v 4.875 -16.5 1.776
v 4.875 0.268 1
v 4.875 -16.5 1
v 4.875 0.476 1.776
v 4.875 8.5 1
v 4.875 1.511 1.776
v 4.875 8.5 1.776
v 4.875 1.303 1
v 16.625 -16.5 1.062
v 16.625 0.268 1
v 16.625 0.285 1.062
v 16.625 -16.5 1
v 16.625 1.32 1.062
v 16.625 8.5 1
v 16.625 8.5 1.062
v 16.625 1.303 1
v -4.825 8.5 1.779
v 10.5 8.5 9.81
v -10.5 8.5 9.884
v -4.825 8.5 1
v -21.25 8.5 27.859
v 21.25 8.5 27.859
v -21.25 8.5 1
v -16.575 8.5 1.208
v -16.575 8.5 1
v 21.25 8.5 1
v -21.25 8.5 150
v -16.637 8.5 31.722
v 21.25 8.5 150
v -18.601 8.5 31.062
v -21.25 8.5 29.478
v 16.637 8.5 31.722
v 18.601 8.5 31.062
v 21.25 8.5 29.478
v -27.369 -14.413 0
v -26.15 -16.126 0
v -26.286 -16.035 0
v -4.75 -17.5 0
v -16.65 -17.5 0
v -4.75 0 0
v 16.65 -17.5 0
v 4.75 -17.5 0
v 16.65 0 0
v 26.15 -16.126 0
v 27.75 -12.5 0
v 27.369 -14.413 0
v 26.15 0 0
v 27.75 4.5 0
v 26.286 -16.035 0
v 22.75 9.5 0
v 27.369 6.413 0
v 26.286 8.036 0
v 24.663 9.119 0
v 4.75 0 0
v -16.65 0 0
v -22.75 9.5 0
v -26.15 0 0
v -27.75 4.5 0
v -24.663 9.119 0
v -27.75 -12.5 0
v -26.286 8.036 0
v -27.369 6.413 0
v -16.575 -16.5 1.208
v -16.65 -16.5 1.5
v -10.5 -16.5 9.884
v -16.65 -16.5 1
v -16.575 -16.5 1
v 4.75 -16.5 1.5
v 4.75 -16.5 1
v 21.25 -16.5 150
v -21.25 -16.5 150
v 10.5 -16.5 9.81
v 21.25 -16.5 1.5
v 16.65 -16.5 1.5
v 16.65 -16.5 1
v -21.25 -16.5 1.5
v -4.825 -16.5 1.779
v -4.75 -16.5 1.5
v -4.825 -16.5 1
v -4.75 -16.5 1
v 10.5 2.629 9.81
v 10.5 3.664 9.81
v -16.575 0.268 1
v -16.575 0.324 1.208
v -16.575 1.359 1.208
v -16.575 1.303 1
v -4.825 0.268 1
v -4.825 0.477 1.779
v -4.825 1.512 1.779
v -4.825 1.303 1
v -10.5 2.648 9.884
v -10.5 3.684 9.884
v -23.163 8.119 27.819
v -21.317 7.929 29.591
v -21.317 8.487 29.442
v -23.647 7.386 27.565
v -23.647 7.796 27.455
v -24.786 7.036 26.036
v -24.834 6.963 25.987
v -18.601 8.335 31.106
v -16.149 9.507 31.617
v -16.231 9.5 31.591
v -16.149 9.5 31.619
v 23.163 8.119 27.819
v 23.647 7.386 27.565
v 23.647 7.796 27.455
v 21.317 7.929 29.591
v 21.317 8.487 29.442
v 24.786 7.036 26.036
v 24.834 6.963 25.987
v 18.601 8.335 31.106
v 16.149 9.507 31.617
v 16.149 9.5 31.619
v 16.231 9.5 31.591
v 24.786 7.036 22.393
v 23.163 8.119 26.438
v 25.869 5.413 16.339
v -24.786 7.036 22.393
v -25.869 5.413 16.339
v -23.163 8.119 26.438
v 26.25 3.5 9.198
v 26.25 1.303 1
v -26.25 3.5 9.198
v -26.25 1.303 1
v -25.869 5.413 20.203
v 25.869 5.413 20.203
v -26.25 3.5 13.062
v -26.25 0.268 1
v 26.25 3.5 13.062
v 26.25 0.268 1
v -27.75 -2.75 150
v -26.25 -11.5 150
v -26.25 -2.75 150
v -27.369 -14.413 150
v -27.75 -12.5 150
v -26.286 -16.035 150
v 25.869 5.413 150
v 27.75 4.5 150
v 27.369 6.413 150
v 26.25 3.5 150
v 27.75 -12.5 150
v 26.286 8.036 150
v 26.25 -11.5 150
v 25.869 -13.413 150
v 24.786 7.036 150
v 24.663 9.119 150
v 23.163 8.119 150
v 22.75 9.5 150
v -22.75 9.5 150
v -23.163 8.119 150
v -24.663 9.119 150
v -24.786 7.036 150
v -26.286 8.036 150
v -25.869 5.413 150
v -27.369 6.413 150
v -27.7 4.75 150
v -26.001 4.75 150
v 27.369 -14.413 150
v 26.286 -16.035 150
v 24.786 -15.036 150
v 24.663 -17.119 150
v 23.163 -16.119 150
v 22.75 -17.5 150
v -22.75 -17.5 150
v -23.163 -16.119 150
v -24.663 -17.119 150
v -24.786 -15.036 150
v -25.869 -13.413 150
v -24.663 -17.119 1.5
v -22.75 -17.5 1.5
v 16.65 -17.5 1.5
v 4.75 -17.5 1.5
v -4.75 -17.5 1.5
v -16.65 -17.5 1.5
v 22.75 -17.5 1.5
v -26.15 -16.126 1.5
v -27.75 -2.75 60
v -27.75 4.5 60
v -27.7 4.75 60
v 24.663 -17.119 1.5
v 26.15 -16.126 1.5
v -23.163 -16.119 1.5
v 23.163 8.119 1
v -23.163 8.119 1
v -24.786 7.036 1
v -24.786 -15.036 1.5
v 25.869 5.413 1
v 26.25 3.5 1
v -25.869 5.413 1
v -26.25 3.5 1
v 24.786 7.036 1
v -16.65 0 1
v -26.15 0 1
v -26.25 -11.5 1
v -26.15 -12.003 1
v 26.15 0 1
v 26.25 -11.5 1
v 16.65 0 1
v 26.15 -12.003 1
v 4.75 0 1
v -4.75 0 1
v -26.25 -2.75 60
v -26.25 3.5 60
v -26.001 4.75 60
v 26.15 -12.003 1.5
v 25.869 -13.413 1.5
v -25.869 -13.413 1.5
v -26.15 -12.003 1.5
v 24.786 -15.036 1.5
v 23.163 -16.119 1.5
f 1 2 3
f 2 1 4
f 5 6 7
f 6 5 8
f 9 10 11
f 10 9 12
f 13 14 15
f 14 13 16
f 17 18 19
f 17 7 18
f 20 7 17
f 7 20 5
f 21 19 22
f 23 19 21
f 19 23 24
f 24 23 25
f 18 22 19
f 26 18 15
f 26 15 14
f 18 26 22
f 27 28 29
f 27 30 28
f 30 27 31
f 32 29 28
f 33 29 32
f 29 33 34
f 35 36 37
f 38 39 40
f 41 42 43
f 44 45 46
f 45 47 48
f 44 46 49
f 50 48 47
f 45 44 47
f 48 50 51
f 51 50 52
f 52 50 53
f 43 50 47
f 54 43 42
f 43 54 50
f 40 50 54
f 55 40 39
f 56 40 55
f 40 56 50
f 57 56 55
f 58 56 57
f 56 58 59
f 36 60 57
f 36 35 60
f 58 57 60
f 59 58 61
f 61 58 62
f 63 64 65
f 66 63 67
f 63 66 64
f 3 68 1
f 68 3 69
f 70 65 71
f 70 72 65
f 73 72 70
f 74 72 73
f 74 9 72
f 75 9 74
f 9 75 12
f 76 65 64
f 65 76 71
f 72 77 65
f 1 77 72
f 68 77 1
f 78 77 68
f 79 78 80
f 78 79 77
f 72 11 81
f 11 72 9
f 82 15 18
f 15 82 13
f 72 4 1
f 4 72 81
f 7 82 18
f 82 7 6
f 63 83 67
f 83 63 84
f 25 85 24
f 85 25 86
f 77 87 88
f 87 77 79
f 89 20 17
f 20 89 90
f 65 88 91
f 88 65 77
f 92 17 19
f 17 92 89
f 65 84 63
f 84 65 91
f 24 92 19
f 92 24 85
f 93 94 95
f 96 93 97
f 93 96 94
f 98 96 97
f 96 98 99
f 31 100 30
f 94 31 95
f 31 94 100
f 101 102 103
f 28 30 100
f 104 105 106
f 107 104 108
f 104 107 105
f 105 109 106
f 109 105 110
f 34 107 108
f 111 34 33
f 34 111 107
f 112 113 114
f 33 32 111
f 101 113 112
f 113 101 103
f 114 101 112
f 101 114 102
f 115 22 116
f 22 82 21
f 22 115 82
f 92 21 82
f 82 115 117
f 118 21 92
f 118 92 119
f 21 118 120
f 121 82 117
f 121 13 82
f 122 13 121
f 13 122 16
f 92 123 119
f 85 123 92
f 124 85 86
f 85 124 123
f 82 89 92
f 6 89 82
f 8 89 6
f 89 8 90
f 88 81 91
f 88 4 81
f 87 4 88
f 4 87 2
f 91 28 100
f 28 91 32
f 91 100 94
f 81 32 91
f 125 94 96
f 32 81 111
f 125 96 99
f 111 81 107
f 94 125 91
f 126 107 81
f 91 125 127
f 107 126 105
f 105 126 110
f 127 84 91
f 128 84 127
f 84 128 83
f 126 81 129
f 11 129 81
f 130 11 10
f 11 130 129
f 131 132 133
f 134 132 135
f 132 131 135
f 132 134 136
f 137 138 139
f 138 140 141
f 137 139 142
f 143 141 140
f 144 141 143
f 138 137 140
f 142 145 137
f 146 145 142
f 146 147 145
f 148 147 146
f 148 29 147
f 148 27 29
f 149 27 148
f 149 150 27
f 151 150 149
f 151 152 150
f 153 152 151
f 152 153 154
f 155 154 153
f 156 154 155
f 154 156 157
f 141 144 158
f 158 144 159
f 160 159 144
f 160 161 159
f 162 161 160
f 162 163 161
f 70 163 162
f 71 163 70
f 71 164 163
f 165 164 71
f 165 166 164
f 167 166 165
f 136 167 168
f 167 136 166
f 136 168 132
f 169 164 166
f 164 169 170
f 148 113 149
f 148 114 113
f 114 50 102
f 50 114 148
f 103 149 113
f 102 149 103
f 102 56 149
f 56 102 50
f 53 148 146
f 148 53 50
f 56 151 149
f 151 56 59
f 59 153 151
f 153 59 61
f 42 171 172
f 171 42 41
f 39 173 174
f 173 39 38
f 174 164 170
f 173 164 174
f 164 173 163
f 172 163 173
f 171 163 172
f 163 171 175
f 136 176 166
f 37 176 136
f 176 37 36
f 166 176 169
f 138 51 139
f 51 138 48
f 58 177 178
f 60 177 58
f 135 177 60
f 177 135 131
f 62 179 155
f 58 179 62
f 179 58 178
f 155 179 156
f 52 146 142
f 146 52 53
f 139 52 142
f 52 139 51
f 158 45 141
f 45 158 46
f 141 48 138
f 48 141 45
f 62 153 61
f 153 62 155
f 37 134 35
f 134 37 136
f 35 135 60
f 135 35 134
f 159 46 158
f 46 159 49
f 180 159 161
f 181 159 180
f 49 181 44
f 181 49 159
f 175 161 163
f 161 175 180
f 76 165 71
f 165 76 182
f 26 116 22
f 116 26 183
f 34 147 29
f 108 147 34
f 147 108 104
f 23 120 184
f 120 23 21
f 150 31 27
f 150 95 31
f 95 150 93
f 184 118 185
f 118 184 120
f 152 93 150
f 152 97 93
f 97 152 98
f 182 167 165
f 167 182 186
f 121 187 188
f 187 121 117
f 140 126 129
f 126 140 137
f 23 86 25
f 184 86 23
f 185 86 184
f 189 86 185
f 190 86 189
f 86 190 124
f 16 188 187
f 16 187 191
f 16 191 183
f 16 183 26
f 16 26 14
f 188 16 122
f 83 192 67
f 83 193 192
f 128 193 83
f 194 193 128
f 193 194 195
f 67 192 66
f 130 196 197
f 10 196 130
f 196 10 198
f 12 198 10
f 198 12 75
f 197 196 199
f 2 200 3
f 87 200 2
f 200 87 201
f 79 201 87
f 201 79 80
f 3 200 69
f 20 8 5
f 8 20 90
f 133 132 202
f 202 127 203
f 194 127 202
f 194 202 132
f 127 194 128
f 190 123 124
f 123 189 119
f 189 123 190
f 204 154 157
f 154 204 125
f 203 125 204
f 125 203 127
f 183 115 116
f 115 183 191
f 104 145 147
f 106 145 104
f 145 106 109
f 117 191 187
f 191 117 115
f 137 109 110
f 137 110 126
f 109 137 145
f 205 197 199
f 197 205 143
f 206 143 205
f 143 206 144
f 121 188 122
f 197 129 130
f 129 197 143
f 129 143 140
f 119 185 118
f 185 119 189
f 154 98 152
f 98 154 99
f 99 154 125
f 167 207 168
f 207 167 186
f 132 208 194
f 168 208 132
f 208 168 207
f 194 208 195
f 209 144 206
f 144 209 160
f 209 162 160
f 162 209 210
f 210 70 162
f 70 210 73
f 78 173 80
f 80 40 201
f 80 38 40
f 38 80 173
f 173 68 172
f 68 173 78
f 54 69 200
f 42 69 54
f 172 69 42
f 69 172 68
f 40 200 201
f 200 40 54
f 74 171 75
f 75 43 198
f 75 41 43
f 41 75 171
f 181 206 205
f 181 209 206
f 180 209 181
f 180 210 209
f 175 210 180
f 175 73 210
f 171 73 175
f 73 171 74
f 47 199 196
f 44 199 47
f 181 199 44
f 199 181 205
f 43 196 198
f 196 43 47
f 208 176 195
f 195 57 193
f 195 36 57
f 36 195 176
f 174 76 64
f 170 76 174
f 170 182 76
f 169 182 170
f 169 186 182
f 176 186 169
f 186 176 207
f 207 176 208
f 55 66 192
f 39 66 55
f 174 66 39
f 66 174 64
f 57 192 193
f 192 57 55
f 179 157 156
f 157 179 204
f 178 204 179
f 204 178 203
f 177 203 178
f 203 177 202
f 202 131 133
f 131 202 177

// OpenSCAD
difference() {
    // Outer volume
    hull(){
        translate([-22.75,4.5,0]) cylinder(r=5,h=150);
        translate([-22.75,-12.5,0]) cylinder(r=5,h=150);
        translate([22.75,-12.5,0]) cylinder(r=5,h=150);
        translate([22.75,4.5,0]) cylinder(r=5,h=150);
    }
    
    // Inner space
    hull(){
        translate([-21.25,3.5,1]) cylinder(r=5,h=150);
        translate([-21.25,-11.5,1]) cylinder(r=5,h=150);
        translate([21.25,-11.5,1]) cylinder(r=5,h=150);
        translate([21.25,3.5,1]) cylinder(r=5,h=150);
    }
    
    // Middle claw slot
    translate([0,-17.5,0]) scale([9.5,35,3]) cube(1,1,1,center=true);
    
    // Right claw slot
    translate([21.4,-17.5,0]) scale([9.5,35,3]) cube(1,1,1,center=true);
    
    // Left claw slot
    translate([-21.4,-17.5,0]) scale([9.5,35,3]) cube(1,1,1,center=true);
    
    // Servo lever opening
    translate([-24,1,160]) scale([9.5,7.5,200]) cube(1,1,1,center=true);
}

module fillet(r, h) {
    translate([r / 2, r / 2, 0])

        difference() {
            cube([r + 0.01, r + 0.01, h], center = true);

            translate([r/2, r/2, 0])
                cylinder(r = r, h = h + 1, center = true);

        }
}

// Right guide pyramid
difference() {
    translate([10.75,-4,5]) scale([11.75,25,10]) cube(1,1,1,center=true);
    translate([12,0,19]) rotate([0,55,0]) scale([40,35,13]) cube(1,1,1,center=true);
    translate([9,0,19]) rotate([0,-55,0]) scale([40,35,13]) cube(1,1,1,center=true);
}

// Left guide pyramid
difference() {
    translate([-10.7,-4,5]) scale([11.75,25,10]) cube(1,1,1,center=true);
    translate([-12,0,19]) rotate([0,55,0]) scale([40,35,8]) cube(1,1,1,center=true);
    translate([-9,0,19]) rotate([0,-55,0]) scale([40,35,8]) cube(1,1,1,center=true);
}

// Top guide plate
rotate([-15,0,0]) difference() {
    translate([-55/2,0,.5]) scale([55,1,32.5]) cube(1,1,1);
    translate([-55/2,0,33.5]) rotate([0,90,-90]) fillet(15,25);
    translate([55/2,0,33.5]) rotate([0,90,90]) fillet(15,25);
}
